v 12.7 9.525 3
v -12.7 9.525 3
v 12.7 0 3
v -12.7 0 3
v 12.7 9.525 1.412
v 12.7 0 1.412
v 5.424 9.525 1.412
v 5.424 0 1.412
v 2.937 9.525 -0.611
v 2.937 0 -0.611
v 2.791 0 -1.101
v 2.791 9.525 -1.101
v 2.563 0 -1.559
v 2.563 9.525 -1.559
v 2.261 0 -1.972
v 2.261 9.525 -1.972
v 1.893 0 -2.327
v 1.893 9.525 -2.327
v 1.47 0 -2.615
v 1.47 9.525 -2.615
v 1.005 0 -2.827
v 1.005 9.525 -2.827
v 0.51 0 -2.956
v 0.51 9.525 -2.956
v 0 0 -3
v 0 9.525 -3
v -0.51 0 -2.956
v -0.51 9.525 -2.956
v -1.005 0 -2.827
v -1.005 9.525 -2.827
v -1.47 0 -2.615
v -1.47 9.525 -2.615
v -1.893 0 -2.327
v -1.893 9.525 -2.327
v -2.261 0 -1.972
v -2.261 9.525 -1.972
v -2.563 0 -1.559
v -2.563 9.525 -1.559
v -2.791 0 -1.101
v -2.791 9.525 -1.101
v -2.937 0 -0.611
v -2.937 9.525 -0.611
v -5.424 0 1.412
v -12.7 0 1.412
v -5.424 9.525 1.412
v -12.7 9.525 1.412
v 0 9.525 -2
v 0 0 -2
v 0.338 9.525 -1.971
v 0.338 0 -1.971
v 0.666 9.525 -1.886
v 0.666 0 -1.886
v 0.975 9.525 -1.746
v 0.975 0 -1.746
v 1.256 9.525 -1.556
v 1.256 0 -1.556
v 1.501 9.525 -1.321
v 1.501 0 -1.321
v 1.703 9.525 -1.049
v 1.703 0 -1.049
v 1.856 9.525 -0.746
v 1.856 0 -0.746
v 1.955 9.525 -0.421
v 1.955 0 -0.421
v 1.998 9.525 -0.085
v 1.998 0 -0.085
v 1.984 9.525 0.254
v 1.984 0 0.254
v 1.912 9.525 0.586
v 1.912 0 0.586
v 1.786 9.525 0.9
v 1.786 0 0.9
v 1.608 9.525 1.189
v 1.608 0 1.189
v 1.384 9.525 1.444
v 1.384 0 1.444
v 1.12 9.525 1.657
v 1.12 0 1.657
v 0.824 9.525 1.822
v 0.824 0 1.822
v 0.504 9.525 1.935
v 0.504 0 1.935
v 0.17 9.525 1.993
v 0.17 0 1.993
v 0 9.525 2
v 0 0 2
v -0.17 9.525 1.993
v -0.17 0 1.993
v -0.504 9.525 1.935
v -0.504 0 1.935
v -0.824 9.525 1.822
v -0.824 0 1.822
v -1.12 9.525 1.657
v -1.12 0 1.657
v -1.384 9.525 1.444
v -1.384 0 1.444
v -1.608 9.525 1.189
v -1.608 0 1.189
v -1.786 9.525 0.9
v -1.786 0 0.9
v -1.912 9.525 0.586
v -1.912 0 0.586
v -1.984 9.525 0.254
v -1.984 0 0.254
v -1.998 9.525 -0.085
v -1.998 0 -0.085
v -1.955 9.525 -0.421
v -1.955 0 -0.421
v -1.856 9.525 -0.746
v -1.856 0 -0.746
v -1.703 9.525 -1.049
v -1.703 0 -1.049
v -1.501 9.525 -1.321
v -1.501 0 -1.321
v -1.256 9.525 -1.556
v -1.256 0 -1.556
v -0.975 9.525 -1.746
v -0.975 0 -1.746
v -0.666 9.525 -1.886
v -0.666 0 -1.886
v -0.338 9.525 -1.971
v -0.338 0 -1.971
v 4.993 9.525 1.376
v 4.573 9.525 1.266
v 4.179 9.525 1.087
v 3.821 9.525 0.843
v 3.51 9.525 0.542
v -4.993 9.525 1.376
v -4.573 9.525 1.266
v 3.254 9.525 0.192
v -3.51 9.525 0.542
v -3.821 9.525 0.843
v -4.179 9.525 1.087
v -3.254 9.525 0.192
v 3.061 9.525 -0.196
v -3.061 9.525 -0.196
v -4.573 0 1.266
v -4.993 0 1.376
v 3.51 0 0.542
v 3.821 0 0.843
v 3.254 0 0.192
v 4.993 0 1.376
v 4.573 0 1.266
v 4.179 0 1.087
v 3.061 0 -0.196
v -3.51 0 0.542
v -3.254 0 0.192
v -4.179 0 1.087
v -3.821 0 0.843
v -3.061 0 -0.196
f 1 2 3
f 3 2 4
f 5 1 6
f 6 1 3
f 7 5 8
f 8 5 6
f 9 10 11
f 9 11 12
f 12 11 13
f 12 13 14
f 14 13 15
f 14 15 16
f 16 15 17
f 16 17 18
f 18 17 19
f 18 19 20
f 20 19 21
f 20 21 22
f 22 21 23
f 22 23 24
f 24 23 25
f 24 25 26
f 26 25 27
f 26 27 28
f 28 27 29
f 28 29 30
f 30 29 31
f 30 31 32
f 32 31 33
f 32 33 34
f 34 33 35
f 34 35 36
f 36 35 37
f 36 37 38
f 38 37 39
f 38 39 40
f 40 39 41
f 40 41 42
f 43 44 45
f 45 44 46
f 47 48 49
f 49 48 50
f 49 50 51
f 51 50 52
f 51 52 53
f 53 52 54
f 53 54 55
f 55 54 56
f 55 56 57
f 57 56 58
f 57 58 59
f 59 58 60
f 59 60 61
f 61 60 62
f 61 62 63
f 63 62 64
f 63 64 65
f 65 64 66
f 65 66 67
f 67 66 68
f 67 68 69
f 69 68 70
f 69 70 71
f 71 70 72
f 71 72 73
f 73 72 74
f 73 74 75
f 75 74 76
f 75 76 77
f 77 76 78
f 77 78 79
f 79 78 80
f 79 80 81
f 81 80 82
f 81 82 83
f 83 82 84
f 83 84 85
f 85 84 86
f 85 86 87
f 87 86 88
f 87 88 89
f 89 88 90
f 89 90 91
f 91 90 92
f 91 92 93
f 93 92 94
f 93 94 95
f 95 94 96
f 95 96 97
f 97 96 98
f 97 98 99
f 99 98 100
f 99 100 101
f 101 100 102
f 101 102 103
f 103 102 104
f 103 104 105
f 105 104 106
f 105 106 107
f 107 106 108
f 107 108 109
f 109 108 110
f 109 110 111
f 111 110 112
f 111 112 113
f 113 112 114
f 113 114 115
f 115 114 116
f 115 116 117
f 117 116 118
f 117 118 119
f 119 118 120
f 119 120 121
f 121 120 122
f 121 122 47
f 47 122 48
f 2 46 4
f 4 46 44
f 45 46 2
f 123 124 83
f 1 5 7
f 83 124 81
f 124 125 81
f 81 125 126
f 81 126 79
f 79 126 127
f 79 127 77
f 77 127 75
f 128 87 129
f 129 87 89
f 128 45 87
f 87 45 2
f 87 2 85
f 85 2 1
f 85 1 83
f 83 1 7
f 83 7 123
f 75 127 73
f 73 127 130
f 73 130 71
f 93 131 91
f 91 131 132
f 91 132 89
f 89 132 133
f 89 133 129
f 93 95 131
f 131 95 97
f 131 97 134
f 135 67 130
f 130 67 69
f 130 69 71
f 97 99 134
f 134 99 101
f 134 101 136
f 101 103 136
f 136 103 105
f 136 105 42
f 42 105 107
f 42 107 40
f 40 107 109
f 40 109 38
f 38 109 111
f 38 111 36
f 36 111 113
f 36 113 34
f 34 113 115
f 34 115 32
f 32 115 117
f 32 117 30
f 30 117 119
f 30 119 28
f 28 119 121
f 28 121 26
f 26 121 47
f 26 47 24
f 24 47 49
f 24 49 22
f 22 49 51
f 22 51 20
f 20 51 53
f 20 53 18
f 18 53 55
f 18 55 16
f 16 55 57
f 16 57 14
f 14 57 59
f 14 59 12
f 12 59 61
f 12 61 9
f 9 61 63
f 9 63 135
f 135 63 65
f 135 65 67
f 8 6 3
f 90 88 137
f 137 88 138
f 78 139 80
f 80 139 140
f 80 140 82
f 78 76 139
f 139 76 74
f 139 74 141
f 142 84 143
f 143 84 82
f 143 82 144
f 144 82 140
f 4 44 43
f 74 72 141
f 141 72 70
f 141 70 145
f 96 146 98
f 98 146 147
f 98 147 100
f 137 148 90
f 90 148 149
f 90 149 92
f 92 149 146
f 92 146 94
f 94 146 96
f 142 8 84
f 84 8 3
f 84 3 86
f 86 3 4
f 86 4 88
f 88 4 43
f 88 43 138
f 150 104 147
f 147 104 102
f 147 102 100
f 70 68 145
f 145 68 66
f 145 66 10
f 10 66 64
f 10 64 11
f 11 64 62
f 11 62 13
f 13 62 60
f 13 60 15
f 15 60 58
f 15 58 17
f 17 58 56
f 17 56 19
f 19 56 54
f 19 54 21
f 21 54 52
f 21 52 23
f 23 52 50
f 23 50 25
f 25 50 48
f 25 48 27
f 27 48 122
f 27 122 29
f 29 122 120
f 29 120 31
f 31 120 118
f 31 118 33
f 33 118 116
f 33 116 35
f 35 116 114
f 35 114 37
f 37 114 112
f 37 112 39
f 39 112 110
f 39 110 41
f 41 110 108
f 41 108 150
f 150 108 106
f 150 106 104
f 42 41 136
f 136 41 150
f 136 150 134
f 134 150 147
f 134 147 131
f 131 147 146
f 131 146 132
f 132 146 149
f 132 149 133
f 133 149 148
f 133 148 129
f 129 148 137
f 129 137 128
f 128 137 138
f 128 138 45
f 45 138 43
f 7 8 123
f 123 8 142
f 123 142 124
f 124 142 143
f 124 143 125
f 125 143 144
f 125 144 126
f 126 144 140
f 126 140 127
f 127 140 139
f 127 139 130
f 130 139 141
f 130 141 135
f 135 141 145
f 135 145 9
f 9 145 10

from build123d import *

# Parameters (mm, degrees)
SKETCH1_R           = 2
BOSS_EXTRUDE1_DEPTH = 9.525
FILLET1_R           = 2.54


with BuildPart() as part:
    # Sketch1 → Boss-Extrude1 (new body)
    with BuildSketch(Plane(origin=(0, 0, 0), x_dir=(1, 0, 0), z_dir=(0, 1, 0))):
        with BuildLine():
            Line((-12.7, -1.4125), (-12.7, -3))
            Line((-12.7, -3), (12.7, -3))
            Line((12.7, -3), (12.7, -1.4125))
            Line((12.7, -1.4125), (2.646666535, -1.4125))
            ThreePointArc((2.646666535, -1.4125), (0, 3), (-2.646666535, -1.4125))
            Line((-2.646666535, -1.4125), (-12.7, -1.4125))
        make_face()
        Circle(SKETCH1_R, mode=Mode.SUBTRACT)
    extrude(amount=BOSS_EXTRUDE1_DEPTH)

    # Fillet1
    fillet1_edges = [part.edges().sort_by_distance(p)[0] for p in [
        (-2.646666535, 4.7625, 1.4125),
        (2.646666535, 4.7625, 1.4125),
    ]]
    fillet(fillet1_edges, radius=FILLET1_R)


solid = part.part
